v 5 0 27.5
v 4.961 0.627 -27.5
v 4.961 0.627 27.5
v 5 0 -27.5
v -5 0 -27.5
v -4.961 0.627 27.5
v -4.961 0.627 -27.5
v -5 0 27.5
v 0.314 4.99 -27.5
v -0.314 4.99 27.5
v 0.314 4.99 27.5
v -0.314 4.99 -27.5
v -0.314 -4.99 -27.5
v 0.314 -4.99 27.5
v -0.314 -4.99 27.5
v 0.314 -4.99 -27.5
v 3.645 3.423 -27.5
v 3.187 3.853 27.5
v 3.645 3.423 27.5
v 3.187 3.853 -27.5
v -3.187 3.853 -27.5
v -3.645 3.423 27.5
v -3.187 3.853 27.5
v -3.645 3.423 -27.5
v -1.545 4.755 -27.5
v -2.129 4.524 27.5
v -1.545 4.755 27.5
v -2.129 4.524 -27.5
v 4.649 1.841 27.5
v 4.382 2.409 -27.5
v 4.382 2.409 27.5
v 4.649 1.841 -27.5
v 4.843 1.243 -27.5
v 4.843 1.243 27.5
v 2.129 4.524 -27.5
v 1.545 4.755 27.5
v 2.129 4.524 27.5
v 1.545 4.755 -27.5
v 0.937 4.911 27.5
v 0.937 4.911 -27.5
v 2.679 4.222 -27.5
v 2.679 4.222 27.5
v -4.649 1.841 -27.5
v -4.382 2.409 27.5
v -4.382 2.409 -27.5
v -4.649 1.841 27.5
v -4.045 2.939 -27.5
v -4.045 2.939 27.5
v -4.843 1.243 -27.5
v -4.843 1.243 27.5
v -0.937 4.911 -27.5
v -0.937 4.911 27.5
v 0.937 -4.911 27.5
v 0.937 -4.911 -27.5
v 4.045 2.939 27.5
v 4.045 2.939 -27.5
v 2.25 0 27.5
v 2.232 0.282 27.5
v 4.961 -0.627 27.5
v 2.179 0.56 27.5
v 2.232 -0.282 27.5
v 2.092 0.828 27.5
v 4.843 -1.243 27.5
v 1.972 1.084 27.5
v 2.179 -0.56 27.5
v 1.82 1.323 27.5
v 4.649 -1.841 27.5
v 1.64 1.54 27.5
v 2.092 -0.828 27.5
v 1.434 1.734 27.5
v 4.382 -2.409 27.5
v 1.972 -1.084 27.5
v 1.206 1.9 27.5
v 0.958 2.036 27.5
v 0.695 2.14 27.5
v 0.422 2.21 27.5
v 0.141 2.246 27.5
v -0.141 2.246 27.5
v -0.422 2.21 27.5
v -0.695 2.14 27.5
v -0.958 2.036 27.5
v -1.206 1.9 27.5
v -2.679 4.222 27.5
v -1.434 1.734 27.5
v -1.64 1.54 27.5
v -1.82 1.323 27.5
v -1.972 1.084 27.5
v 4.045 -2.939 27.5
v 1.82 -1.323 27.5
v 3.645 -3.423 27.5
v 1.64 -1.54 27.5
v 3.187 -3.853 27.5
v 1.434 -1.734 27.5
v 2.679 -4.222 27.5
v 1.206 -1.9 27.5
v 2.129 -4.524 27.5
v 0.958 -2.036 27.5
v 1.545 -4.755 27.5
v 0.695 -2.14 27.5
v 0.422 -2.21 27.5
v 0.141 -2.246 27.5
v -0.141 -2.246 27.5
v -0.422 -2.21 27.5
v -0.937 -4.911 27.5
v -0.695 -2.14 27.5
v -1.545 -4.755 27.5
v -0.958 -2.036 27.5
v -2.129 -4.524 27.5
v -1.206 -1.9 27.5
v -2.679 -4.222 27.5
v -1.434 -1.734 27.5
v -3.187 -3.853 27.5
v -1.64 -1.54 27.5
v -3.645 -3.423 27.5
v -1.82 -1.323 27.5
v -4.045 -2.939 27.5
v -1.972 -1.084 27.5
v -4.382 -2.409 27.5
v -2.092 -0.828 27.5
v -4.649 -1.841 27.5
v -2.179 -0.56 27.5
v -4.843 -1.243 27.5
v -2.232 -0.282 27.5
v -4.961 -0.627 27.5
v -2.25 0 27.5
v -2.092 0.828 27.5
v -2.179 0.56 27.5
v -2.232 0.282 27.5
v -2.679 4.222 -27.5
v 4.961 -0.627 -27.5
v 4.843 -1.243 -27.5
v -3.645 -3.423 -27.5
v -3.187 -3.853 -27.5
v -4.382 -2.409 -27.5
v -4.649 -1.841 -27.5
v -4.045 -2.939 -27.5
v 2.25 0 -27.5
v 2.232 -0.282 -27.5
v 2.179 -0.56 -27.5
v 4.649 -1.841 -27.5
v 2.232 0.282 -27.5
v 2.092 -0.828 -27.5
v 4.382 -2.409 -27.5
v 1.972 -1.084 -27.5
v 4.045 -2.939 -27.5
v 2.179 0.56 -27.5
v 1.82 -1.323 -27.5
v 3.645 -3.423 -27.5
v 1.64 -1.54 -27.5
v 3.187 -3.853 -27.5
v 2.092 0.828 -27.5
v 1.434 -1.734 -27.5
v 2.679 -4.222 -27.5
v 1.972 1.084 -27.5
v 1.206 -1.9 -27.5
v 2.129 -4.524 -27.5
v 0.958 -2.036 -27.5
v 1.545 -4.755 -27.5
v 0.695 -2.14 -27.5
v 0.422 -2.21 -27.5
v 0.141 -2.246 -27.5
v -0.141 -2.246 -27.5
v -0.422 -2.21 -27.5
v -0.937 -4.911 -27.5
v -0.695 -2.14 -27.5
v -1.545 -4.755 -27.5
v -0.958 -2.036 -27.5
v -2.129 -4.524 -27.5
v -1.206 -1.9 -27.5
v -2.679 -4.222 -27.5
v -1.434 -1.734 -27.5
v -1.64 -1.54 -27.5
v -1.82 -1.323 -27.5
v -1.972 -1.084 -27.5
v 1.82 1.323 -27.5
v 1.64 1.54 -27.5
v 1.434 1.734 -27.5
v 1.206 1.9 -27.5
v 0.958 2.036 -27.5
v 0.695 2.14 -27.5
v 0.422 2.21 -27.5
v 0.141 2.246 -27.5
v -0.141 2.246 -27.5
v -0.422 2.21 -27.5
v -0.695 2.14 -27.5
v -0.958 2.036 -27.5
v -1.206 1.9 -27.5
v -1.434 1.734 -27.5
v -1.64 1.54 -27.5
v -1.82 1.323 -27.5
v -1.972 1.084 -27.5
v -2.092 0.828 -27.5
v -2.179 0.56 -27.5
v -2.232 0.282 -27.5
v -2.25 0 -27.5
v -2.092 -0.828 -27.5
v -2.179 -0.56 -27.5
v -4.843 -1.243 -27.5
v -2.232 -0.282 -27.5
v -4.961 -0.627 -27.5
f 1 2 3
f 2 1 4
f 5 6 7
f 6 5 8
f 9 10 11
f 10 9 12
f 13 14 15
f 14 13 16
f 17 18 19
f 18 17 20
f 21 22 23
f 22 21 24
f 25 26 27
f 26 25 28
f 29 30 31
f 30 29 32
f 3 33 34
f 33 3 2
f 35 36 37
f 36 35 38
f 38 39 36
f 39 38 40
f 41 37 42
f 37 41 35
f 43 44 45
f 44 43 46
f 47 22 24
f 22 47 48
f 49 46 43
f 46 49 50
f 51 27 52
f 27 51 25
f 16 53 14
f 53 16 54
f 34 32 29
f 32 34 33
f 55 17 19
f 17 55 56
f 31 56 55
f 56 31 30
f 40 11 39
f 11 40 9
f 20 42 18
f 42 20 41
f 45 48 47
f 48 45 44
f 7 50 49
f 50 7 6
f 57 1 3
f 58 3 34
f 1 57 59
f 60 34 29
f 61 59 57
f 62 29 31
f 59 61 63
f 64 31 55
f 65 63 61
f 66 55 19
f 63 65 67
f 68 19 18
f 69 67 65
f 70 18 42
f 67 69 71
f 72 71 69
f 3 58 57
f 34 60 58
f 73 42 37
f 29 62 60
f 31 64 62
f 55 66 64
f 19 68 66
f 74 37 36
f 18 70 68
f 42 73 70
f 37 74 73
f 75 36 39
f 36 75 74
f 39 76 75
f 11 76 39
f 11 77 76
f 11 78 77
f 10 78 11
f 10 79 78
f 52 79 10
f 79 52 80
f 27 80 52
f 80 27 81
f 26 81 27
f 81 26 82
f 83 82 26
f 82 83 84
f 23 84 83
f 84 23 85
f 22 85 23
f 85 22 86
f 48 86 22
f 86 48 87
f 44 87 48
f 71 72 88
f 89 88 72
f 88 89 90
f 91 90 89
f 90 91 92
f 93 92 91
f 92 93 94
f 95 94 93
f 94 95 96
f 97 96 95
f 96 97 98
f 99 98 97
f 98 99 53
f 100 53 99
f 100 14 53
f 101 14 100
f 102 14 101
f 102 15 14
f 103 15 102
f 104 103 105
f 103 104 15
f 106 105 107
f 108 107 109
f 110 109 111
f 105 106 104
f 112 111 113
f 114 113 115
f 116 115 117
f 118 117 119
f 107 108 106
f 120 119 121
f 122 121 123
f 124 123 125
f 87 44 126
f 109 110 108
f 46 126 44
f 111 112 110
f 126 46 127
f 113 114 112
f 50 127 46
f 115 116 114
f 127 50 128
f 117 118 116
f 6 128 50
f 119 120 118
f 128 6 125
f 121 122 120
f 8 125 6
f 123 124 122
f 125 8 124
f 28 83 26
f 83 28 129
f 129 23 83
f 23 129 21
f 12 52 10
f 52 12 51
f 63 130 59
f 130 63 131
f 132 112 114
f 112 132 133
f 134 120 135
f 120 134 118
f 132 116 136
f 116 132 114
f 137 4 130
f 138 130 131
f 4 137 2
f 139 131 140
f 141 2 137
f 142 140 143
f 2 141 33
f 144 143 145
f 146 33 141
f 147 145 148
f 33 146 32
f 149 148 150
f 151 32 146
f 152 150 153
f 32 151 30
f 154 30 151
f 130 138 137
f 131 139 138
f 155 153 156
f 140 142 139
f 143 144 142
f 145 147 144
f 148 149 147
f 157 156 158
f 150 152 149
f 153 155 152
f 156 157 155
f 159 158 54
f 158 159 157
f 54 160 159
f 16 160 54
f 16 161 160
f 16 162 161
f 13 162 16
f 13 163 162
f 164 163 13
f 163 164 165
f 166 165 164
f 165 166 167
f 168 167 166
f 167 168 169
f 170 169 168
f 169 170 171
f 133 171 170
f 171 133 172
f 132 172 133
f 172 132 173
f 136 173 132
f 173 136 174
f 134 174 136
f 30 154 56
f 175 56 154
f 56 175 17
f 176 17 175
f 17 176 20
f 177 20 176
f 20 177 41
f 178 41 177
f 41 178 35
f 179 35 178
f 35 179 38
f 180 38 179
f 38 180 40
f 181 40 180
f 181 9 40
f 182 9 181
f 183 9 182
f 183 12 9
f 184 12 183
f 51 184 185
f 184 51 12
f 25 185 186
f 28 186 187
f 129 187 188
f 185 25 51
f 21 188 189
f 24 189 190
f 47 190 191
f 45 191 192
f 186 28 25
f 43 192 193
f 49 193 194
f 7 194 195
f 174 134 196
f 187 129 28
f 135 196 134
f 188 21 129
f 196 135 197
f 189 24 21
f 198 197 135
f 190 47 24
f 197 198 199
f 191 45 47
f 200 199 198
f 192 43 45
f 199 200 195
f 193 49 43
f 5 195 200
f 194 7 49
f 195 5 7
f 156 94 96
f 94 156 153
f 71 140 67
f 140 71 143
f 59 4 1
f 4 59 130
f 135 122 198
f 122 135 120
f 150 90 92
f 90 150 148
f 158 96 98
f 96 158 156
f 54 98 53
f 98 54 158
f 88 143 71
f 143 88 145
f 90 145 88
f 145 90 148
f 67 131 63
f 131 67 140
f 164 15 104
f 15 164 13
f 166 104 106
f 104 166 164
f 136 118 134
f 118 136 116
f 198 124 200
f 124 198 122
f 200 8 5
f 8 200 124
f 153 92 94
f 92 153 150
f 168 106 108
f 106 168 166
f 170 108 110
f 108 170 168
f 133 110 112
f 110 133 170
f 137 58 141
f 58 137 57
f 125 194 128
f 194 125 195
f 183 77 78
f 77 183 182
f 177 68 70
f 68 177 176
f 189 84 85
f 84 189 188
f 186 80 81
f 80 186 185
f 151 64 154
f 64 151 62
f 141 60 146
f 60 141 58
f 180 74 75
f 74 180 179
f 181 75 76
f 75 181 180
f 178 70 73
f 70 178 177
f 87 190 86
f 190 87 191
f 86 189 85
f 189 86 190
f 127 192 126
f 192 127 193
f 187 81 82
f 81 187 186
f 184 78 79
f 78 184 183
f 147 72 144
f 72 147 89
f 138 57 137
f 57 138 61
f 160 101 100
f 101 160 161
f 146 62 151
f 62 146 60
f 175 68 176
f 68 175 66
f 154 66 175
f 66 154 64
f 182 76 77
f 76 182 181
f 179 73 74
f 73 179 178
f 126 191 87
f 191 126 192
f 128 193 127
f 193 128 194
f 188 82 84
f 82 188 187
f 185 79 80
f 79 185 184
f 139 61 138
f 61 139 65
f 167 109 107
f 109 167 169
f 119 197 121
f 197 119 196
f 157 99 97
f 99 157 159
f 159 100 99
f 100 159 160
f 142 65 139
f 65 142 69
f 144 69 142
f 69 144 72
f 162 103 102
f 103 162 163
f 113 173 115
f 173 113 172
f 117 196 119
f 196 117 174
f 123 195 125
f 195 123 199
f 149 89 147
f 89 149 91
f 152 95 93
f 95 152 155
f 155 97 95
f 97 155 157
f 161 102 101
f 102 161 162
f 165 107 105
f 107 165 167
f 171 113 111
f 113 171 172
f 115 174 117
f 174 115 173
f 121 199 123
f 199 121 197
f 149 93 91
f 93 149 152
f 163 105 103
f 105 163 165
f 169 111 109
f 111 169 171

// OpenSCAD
$fn = 50;


difference() {
	union() {
		translate(v = [0, 0, -27.5000000000]) {
			cylinder(h = 55, r = 5.0000000000);
		}
	}
	union() {
		translate(v = [0, 0, -100.0000000000]) {
			cylinder(h = 200, r = 2.2500000000);
		}
	}
}
